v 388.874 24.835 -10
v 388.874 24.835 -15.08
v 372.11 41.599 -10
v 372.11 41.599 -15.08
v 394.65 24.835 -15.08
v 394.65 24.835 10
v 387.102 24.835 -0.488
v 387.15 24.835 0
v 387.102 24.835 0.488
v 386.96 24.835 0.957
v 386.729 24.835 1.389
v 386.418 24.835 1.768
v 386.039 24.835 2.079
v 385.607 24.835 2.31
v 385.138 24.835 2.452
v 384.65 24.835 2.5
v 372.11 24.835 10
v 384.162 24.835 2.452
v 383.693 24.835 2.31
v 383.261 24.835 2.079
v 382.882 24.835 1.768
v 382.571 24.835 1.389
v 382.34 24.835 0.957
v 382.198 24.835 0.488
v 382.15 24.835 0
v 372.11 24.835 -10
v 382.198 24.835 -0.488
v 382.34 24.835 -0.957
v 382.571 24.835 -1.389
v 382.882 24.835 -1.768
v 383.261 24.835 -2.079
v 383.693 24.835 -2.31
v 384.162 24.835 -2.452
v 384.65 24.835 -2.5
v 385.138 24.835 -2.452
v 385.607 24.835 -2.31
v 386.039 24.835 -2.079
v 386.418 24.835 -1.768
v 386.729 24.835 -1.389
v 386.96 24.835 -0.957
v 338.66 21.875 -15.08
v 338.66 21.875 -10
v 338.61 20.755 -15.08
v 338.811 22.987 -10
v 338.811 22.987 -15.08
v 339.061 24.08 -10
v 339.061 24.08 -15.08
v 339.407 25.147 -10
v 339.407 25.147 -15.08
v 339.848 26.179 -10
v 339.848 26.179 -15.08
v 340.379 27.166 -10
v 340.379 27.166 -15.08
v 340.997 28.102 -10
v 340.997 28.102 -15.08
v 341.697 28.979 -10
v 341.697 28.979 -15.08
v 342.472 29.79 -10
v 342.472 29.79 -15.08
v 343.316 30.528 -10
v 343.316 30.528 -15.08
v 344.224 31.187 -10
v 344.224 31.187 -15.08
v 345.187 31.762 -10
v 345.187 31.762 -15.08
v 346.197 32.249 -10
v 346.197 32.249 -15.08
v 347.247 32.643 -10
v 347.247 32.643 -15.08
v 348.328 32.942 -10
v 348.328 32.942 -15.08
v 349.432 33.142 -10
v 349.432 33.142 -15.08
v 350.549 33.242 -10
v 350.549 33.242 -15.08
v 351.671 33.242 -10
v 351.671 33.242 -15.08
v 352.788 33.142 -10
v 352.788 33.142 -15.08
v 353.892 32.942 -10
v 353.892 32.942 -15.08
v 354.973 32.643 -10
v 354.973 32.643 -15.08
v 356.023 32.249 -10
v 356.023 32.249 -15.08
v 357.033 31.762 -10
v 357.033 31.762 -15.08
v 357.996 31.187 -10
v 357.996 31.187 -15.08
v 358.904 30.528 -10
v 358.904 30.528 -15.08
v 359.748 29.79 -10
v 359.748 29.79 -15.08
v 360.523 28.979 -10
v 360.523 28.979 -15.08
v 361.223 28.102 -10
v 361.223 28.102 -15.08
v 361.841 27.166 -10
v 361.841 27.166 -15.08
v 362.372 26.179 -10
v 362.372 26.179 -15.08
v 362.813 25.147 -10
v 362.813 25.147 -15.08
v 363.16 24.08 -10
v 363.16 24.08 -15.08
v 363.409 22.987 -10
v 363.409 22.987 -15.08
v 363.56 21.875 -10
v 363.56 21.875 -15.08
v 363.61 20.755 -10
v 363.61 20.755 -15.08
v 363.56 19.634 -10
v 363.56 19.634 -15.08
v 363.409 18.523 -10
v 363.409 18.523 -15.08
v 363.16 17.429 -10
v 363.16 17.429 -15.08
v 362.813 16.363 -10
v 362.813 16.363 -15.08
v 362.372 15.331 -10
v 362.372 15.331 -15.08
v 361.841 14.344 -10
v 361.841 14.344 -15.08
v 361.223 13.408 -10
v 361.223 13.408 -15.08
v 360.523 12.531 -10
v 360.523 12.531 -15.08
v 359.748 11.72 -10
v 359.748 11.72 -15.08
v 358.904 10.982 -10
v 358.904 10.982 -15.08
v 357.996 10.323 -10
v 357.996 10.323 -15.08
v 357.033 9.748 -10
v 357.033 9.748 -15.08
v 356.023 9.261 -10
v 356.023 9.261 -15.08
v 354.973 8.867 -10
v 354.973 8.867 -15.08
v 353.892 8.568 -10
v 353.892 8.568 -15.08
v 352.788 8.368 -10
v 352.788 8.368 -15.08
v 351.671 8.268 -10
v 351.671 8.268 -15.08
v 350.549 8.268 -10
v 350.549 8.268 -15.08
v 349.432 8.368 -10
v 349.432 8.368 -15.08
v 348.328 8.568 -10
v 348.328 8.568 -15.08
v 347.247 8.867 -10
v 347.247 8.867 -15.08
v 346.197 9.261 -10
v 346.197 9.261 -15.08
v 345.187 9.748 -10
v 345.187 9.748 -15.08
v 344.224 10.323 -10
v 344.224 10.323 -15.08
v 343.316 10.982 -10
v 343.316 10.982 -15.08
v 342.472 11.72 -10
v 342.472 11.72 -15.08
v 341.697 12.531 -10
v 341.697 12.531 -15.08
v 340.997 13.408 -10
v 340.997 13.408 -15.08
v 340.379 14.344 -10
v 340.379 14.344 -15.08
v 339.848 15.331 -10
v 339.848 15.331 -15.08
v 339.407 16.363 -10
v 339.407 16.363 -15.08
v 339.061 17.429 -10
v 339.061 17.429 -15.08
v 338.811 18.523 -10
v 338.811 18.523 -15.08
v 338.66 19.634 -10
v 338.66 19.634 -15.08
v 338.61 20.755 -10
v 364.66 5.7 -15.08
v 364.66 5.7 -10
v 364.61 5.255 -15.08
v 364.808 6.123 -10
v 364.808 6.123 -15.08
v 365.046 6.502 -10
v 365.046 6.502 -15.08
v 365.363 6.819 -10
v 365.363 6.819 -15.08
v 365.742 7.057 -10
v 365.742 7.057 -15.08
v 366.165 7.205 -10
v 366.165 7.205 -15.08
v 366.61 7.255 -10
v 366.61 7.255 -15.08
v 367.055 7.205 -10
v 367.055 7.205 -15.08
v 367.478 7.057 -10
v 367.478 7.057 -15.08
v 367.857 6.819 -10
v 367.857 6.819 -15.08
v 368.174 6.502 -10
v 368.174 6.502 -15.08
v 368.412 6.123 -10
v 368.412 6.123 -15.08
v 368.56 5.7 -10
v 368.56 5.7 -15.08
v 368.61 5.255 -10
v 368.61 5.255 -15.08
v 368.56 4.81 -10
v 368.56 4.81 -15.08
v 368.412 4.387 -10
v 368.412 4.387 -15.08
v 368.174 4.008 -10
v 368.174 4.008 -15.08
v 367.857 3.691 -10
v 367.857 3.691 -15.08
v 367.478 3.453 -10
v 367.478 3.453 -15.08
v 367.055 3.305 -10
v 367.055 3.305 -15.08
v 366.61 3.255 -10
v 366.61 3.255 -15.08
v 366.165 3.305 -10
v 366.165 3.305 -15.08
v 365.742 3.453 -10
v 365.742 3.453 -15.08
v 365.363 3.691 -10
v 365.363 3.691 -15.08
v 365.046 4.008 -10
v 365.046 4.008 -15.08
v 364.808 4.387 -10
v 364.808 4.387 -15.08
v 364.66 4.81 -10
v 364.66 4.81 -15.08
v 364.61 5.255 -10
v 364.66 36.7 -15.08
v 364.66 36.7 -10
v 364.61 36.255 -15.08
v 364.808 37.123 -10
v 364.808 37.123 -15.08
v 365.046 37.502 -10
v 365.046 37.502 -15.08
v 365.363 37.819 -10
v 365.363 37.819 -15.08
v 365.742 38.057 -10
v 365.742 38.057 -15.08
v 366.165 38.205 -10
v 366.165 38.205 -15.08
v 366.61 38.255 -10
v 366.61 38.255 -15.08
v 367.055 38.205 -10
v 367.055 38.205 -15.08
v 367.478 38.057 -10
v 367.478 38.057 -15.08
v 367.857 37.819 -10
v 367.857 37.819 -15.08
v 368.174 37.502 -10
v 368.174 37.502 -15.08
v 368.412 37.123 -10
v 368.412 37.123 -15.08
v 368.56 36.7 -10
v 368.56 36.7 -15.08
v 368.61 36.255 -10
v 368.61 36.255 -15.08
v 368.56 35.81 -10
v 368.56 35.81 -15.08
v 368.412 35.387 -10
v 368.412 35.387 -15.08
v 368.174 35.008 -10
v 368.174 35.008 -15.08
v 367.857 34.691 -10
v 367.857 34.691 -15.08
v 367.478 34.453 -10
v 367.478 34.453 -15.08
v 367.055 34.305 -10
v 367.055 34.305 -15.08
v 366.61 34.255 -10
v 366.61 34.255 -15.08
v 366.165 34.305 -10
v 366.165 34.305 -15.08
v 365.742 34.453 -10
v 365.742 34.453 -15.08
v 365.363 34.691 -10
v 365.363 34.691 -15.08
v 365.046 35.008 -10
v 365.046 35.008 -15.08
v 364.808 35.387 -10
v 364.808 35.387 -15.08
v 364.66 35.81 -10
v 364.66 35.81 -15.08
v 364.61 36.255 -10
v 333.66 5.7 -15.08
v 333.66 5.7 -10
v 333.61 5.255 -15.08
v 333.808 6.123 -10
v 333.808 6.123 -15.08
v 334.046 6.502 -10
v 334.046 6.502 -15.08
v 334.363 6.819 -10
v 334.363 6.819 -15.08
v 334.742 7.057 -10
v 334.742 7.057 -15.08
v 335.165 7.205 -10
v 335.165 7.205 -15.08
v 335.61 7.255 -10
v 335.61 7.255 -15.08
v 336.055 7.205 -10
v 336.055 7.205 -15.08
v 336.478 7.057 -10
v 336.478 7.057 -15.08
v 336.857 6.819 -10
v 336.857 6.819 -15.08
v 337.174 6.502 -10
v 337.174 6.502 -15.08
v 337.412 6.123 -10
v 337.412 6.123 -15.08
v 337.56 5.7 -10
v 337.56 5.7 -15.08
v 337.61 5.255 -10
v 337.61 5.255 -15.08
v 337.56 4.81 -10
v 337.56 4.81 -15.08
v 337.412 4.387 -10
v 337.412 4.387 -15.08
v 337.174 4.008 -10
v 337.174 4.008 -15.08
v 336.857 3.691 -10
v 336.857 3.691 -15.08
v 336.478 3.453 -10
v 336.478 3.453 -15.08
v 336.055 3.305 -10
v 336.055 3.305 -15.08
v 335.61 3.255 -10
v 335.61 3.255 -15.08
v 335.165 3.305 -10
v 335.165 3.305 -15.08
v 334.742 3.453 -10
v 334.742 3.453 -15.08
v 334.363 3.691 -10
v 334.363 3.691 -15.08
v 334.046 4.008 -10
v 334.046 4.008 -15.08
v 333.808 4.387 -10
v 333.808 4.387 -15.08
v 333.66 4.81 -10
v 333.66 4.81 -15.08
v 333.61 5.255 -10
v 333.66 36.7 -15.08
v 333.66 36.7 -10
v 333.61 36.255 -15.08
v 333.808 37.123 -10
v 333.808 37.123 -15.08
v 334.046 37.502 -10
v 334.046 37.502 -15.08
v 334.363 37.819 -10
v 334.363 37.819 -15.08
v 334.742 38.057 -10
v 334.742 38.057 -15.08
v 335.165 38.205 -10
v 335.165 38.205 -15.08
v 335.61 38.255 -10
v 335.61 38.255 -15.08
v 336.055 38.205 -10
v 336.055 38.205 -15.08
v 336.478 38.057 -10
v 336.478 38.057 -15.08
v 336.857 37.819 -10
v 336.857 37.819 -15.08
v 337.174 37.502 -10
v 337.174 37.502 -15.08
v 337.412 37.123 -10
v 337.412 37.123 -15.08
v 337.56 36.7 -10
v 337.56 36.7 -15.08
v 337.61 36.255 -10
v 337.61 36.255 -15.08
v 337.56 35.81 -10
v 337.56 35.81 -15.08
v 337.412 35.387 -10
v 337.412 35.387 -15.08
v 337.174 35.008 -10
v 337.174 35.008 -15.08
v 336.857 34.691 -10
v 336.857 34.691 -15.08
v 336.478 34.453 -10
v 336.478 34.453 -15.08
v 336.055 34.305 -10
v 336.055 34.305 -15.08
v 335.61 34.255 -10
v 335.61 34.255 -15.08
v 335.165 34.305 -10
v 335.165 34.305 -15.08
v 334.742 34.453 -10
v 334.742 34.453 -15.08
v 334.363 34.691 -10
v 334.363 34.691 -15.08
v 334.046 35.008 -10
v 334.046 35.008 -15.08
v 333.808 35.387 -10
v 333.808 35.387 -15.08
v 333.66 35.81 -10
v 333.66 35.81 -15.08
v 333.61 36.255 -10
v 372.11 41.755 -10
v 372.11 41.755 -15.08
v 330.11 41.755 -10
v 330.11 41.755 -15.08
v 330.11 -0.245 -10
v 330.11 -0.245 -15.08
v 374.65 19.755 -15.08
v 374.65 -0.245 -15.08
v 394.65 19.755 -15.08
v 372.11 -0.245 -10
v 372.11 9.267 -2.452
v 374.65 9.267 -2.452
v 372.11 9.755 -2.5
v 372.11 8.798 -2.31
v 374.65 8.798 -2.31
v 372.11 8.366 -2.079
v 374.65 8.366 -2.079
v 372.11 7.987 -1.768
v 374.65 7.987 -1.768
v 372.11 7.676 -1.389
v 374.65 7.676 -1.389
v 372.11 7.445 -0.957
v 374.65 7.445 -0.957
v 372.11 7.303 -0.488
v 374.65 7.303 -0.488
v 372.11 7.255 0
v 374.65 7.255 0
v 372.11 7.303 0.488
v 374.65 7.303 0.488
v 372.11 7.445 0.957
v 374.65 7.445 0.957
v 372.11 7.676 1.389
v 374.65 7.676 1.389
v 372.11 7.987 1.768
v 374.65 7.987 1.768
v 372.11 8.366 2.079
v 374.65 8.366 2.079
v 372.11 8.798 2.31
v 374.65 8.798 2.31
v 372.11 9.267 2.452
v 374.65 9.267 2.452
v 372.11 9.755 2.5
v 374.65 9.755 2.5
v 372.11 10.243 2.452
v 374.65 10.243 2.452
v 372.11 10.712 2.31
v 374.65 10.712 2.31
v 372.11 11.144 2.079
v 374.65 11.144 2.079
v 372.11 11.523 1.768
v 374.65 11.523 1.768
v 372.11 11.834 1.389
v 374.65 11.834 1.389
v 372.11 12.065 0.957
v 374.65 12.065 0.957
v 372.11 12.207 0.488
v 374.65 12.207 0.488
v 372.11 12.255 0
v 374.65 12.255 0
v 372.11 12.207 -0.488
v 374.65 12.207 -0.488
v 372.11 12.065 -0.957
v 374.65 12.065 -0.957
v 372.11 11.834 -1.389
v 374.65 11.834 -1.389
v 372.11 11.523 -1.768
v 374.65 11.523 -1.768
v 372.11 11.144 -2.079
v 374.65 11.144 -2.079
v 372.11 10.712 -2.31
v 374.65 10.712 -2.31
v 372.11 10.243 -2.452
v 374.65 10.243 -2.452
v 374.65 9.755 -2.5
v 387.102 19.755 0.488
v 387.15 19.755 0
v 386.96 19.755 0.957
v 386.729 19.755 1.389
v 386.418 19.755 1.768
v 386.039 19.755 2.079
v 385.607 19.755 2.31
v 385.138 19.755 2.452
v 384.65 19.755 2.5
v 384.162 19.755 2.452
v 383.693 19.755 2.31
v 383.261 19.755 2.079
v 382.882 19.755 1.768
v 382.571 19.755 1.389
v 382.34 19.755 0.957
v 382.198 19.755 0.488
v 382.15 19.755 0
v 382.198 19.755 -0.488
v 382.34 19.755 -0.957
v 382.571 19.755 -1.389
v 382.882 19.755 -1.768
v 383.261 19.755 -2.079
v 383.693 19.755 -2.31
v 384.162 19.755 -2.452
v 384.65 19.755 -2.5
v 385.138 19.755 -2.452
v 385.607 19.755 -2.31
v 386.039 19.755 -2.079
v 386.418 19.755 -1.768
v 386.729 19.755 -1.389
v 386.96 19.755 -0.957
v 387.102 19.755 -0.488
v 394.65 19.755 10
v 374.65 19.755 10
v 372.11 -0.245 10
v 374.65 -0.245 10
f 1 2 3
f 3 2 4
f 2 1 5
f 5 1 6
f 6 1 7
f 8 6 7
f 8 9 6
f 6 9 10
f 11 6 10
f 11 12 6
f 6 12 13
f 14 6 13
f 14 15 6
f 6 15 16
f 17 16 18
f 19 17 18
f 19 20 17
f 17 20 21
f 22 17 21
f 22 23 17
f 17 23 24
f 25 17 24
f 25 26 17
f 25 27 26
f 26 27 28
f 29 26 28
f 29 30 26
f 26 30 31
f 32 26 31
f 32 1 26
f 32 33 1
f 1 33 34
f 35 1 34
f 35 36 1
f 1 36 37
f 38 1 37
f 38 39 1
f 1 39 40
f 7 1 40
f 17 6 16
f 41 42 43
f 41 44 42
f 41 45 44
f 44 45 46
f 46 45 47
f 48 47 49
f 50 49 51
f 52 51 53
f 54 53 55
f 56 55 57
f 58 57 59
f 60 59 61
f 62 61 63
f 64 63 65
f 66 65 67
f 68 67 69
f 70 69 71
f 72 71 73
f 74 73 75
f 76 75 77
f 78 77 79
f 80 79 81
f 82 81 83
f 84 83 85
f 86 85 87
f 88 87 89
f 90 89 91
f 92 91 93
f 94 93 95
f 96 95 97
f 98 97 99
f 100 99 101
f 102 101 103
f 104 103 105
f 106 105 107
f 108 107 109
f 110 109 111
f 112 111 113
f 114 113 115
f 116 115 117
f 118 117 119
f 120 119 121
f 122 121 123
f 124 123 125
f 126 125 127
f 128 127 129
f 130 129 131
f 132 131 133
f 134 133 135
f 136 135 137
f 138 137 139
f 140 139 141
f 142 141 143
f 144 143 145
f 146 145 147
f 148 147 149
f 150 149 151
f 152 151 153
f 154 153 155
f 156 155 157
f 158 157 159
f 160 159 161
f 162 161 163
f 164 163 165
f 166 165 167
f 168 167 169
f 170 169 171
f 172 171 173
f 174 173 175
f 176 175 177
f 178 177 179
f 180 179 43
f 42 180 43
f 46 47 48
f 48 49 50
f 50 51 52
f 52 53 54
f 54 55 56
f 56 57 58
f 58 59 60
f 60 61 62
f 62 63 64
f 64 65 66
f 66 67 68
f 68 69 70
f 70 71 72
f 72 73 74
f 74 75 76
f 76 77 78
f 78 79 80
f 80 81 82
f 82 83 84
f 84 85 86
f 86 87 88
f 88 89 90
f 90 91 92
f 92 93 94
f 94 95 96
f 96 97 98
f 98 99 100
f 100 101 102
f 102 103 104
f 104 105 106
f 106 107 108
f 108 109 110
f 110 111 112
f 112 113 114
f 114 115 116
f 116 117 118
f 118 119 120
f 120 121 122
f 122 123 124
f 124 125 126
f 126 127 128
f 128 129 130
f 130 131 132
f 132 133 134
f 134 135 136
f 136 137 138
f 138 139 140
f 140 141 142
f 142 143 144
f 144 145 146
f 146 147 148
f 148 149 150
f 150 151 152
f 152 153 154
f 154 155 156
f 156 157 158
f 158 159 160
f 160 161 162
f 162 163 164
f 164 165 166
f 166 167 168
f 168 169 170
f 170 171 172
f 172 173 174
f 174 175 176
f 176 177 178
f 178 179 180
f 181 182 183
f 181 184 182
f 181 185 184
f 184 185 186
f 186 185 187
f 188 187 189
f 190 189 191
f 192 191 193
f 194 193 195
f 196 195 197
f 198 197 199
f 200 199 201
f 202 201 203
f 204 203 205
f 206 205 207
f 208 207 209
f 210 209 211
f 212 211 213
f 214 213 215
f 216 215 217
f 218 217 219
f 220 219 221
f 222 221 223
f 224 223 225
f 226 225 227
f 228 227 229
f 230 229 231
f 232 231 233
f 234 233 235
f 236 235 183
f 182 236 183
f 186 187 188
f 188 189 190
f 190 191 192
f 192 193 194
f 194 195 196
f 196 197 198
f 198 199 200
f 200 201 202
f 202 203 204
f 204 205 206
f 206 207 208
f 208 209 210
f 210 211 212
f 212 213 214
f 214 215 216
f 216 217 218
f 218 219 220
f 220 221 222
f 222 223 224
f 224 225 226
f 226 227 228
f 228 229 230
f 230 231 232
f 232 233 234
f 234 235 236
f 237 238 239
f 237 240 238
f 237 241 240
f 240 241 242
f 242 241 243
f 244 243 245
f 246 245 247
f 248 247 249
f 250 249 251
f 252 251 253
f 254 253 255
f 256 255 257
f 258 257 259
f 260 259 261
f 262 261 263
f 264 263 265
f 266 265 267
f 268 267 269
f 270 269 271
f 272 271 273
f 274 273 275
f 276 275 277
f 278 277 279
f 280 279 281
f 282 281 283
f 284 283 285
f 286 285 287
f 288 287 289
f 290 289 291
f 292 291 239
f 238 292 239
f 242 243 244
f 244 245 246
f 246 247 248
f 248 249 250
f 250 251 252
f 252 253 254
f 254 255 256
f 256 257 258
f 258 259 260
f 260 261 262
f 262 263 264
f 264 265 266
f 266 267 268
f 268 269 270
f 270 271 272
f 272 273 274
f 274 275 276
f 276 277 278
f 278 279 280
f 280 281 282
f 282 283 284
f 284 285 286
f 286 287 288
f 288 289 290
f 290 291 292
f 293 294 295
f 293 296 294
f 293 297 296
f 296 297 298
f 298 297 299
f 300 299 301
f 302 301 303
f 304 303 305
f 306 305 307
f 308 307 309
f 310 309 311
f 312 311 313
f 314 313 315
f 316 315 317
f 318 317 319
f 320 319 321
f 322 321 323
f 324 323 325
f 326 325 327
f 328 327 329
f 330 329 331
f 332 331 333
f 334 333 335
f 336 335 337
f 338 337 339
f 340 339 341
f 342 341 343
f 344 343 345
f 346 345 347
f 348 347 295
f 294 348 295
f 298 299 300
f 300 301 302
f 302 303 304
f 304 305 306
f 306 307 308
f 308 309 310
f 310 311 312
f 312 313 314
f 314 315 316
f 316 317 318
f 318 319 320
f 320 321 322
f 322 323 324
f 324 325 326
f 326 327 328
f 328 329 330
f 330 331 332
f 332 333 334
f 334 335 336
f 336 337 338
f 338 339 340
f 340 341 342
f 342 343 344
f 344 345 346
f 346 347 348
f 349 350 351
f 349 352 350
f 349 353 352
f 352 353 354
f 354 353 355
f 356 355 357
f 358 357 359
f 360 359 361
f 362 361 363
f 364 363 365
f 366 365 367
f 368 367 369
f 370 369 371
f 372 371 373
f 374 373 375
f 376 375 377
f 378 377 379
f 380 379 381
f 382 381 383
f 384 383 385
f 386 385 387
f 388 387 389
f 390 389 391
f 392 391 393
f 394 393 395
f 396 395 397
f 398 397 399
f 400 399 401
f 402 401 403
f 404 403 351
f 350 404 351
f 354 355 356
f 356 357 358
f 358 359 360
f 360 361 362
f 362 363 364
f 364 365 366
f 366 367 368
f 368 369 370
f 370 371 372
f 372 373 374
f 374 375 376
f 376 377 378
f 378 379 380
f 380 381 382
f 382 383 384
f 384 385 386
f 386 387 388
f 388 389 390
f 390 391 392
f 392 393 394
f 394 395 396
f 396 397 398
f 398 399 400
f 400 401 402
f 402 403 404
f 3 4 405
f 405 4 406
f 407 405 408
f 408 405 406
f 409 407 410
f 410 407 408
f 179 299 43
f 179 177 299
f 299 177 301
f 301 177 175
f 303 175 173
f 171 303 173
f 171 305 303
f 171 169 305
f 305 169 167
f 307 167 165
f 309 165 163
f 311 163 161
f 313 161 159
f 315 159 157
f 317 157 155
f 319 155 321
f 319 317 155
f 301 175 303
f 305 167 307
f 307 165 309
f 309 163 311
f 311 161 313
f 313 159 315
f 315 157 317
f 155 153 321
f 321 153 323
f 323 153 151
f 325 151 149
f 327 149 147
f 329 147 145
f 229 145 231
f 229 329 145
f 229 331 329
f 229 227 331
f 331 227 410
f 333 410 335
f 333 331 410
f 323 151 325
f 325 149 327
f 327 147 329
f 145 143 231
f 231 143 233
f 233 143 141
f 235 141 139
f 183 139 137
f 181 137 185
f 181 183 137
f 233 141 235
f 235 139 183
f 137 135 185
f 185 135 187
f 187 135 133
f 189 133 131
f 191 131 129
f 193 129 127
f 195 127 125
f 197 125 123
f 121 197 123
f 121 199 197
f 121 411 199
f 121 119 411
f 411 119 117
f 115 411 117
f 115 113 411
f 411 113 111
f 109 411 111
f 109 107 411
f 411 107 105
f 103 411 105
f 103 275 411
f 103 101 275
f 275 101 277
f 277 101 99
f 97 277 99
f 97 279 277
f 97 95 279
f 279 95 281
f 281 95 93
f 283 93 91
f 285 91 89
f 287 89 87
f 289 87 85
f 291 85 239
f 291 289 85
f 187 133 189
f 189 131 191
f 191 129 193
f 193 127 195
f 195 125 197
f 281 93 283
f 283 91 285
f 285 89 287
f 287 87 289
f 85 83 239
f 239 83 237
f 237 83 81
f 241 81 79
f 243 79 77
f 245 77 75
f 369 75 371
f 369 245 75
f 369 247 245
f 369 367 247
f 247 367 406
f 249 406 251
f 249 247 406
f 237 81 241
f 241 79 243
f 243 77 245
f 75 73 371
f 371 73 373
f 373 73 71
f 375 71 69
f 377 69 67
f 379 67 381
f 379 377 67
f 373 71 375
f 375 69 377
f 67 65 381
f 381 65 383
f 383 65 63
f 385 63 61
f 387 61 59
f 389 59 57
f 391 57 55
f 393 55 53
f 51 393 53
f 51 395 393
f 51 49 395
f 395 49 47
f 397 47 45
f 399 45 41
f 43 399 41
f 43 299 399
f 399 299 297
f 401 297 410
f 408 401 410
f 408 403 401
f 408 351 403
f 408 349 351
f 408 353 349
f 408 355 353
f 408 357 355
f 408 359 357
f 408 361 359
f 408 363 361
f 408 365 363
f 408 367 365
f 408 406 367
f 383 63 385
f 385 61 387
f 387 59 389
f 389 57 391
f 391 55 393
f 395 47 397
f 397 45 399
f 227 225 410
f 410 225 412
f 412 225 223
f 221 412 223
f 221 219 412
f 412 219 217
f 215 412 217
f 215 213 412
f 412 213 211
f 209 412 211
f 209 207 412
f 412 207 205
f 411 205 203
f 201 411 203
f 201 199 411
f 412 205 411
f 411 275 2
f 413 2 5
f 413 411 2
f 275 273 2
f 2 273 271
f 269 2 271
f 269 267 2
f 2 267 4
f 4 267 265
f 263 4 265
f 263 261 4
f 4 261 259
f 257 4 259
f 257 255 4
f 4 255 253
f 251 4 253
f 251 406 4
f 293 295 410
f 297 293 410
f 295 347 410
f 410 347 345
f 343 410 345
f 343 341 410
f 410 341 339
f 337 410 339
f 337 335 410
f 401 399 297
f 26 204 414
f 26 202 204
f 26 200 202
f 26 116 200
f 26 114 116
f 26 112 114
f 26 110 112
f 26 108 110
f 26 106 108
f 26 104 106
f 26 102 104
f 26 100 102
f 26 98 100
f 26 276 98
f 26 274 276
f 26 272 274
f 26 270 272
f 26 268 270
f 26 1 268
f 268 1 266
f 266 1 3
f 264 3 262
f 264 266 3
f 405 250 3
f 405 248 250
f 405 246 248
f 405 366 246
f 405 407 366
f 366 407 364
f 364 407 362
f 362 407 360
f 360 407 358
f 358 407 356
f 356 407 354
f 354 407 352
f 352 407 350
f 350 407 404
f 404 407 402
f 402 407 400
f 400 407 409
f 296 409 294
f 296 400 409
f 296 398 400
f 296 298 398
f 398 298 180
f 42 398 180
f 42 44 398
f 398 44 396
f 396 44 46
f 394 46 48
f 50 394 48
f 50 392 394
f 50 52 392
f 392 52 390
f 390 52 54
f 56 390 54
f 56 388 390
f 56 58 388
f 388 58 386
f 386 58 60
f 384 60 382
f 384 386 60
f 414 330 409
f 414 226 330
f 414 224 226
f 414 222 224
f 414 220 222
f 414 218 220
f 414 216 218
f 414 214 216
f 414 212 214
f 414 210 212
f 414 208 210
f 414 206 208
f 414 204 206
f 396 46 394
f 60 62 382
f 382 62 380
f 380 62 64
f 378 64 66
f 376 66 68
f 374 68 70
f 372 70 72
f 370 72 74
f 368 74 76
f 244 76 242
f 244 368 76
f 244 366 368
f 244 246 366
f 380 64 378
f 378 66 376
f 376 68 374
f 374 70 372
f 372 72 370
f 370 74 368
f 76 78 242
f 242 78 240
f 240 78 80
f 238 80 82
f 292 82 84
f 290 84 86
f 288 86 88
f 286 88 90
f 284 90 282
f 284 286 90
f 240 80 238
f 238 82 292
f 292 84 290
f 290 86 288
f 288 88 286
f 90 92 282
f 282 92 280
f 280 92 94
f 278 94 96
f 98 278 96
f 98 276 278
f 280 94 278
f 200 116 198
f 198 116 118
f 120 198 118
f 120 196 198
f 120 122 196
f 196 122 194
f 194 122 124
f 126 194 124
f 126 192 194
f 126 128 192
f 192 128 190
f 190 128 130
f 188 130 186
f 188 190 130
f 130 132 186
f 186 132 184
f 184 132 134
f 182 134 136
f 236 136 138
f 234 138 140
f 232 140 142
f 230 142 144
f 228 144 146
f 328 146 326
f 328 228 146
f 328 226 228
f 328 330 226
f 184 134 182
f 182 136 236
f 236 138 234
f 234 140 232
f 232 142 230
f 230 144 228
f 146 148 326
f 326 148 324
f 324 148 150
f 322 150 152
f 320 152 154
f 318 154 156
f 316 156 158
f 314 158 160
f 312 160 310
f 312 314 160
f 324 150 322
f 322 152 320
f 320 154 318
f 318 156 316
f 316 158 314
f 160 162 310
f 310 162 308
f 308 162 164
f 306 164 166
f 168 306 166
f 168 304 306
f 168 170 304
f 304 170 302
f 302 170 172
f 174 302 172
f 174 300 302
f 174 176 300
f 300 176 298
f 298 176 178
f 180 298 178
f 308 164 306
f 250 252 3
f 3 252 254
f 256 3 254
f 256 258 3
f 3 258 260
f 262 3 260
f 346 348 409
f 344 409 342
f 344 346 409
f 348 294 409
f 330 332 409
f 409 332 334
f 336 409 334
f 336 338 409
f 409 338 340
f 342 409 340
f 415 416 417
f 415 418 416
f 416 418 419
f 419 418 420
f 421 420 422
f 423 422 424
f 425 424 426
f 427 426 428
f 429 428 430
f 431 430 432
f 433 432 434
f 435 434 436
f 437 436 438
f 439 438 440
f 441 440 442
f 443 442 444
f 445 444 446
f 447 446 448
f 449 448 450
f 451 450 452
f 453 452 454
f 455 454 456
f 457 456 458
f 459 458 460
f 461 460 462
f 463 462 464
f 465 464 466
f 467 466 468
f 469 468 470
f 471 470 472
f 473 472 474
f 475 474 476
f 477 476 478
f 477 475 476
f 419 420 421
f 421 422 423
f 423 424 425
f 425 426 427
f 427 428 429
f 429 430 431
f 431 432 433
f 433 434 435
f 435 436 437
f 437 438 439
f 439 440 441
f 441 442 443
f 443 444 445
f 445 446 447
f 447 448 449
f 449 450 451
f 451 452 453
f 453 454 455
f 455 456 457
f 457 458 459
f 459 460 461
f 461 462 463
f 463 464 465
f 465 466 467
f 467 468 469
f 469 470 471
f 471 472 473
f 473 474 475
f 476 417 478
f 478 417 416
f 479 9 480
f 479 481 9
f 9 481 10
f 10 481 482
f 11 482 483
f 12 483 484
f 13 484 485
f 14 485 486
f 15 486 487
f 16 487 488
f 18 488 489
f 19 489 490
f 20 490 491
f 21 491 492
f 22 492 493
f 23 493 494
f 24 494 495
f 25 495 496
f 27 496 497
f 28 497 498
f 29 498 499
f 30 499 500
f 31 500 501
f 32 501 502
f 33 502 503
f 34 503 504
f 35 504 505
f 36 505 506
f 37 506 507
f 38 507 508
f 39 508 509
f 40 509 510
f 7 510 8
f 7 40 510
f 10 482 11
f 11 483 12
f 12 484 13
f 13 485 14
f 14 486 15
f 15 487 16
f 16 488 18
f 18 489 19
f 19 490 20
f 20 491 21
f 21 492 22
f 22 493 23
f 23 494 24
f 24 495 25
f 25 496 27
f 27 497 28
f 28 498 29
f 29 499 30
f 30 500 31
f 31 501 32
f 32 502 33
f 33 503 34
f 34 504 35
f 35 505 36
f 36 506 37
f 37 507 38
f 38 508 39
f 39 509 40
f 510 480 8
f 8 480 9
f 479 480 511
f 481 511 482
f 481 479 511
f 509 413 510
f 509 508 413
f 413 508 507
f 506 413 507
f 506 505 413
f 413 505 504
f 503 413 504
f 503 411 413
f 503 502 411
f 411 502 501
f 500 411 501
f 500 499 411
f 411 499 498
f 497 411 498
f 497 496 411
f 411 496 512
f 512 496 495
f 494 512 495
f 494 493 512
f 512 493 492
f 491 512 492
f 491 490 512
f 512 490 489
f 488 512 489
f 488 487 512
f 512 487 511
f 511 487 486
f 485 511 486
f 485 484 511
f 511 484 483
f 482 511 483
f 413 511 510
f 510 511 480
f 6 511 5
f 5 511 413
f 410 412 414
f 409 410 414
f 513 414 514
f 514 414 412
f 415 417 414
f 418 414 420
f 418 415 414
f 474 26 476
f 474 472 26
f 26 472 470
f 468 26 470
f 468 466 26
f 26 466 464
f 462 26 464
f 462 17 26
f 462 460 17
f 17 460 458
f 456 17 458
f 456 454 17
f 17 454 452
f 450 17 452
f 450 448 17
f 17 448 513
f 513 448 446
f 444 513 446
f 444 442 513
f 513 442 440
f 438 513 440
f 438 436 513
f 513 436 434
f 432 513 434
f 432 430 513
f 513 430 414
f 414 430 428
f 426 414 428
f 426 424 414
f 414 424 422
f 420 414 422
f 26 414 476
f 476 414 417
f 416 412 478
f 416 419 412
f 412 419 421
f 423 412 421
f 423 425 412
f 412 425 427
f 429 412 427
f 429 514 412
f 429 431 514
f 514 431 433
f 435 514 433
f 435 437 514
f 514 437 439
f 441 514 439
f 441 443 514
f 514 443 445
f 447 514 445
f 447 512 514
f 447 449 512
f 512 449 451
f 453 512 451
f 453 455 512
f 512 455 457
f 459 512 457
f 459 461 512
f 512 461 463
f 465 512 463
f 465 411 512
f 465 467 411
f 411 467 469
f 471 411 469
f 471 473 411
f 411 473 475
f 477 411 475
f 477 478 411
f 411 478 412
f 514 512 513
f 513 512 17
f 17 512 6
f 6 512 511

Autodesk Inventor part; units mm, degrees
ref_plane "YZ Plane" through (0, 0, 0) normal (1, 0, 0) x (0, 1, 0)
ref_plane "XZ Plane" through (0, 0, 0) normal (0, 1, 0) x (-1, 0, 0)
ref_plane "XY Plane" through (0, 0, 0) normal (0, 0, 1) x (1, 0, 0)
ref_plane "Work Plane1" through (0, 0, 0) normal (0, 0, 1) x (1, 0, 0)
sketch "Sketch1" plane through (0, 0, 0) normal (0, 0, 1) x (1, 0, 0)
  line L0 (374.65, 19.755) -> (374.65, -0.245) projected
  line L1 (394.65, -0.245) -> (394.65, 19.755) projected
  line L2 (374.65, -0.245) -> (394.65, -0.245) projected
  line L3 (374.65, -0.245) -> (372.11, -0.245)
  line L4 (372.11, -0.245) -> (372.11, 19.755)
  line L5 (372.11, 19.755) -> (374.65, 19.755)
  line L6 (374.65, 19.755) -> (374.65, -0.245)
  line L7 (372.11, 19.755) -> (394.65, 19.755)
  line L8 (394.65, 19.755) -> (394.65, 24.835)
  line L9 (394.65, 24.835) -> (372.11, 24.835)
  line L10 (372.11, 24.835) -> (372.11, 19.755)
  point P0 (0, 0)
  dimension "d0" = 2.54
  dimension "d1" = 20
  dimension "d2" = 5.08
extrude "Extrusion1" add sketch "Sketch1" along normal mid plane 20 contours L0 L3 L4 L5 | L5 L10 L9 L8 L7
sketch "Sketch2" plane through (372.11, 24.835, -10) normal (0, 1, 0) x (1, 0, 0)
  line L0 (0, 0) -> (22.54, 0) projected
  line L1 (0, 0) -> (0, -20) projected
  line L2 (22.54, -20) -> (0, -20) projected
  line L3 (22.54, 0) -> (22.54, -20) projected
  line L4 (2.54, -340.2) -> (2.54, 320.2) projected
  line L5 (2.54, -20) -> (2.54, 0) projected
  line L6 (2.54, -10) -> (22.54, -10)
  circle A0 centre (12.54, -10) radius 2.5
  point P0 (-372.11, -10)
  dimension "d5" = 5
extrude "Extrusion2" cut sketch "Sketch2" against normal blind 20 contours A0 L6 | L6 A0
sketch "Sketch3" plane through (374.65, -0.245, -10) normal (1, 0, 0) x (0, 0, -1)
  line L0 (0, 20) -> (0, 0) projected
  line L1 (0, 20) -> (-20, 20) projected
  circle A0 centre (-10, 10) radius 2.5
  point P0 (-10, 0.245)
  dimension "d8" = 5
extrude "Extrusion3" cut sketch "Sketch3" against normal blind 20
sketch "Sketch4" plane through (0, 0, -10) normal (0, 0, -1) x (-1, 0, 0)
  line L0 (-374.65, -0.245) -> (-374.65, 19.755) projected
  line L1 (-374.65, 19.755) -> (-394.65, 19.755) projected
  line L2 (-394.65, 19.755) -> (-394.65, 24.835) projected
  line L3 (-394.65, 24.835) -> (-372.11, 24.835) projected
  line L4 (-372.11, 24.835) -> (-372.11, -0.245) projected
  line L5 (-372.11, -0.245) -> (-374.65, -0.245) projected
  line L6 (-372.11, -0.245) -> (-330.11, -0.245)
  line L7 (-330.11, -0.245) -> (-330.11, 41.755)
  line L8 (-330.11, 41.755) -> (-372.11, 41.755)
  line L9 (-372.11, 41.755) -> (-372.11, -0.245)
  circle A0 centre (-351.11, 20.755) radius 12.5
  circle A1 centre (-335.61, 36.255) radius 2
  circle A2 centre (-335.61, 5.255) radius 2
  circle A3 centre (-366.61, 36.255) radius 2
  circle A4 centre (-366.61, 5.255) radius 2
  point P0 (0, 0)
  dimension "d11" = 42
  dimension "d12" = 42
  dimension "d13" = 25
  dimension "d16" = 4
  dimension "d19" = 31
  dimension "d22" = 31
extrude "Extrusion4" add sketch "Sketch4" along normal blind 5.08
chamfer "Chamfer1" distance 16.764 angle 45 1 edges at (372.11, 24.835, -12.54)
properties part number "YMotorMount"
